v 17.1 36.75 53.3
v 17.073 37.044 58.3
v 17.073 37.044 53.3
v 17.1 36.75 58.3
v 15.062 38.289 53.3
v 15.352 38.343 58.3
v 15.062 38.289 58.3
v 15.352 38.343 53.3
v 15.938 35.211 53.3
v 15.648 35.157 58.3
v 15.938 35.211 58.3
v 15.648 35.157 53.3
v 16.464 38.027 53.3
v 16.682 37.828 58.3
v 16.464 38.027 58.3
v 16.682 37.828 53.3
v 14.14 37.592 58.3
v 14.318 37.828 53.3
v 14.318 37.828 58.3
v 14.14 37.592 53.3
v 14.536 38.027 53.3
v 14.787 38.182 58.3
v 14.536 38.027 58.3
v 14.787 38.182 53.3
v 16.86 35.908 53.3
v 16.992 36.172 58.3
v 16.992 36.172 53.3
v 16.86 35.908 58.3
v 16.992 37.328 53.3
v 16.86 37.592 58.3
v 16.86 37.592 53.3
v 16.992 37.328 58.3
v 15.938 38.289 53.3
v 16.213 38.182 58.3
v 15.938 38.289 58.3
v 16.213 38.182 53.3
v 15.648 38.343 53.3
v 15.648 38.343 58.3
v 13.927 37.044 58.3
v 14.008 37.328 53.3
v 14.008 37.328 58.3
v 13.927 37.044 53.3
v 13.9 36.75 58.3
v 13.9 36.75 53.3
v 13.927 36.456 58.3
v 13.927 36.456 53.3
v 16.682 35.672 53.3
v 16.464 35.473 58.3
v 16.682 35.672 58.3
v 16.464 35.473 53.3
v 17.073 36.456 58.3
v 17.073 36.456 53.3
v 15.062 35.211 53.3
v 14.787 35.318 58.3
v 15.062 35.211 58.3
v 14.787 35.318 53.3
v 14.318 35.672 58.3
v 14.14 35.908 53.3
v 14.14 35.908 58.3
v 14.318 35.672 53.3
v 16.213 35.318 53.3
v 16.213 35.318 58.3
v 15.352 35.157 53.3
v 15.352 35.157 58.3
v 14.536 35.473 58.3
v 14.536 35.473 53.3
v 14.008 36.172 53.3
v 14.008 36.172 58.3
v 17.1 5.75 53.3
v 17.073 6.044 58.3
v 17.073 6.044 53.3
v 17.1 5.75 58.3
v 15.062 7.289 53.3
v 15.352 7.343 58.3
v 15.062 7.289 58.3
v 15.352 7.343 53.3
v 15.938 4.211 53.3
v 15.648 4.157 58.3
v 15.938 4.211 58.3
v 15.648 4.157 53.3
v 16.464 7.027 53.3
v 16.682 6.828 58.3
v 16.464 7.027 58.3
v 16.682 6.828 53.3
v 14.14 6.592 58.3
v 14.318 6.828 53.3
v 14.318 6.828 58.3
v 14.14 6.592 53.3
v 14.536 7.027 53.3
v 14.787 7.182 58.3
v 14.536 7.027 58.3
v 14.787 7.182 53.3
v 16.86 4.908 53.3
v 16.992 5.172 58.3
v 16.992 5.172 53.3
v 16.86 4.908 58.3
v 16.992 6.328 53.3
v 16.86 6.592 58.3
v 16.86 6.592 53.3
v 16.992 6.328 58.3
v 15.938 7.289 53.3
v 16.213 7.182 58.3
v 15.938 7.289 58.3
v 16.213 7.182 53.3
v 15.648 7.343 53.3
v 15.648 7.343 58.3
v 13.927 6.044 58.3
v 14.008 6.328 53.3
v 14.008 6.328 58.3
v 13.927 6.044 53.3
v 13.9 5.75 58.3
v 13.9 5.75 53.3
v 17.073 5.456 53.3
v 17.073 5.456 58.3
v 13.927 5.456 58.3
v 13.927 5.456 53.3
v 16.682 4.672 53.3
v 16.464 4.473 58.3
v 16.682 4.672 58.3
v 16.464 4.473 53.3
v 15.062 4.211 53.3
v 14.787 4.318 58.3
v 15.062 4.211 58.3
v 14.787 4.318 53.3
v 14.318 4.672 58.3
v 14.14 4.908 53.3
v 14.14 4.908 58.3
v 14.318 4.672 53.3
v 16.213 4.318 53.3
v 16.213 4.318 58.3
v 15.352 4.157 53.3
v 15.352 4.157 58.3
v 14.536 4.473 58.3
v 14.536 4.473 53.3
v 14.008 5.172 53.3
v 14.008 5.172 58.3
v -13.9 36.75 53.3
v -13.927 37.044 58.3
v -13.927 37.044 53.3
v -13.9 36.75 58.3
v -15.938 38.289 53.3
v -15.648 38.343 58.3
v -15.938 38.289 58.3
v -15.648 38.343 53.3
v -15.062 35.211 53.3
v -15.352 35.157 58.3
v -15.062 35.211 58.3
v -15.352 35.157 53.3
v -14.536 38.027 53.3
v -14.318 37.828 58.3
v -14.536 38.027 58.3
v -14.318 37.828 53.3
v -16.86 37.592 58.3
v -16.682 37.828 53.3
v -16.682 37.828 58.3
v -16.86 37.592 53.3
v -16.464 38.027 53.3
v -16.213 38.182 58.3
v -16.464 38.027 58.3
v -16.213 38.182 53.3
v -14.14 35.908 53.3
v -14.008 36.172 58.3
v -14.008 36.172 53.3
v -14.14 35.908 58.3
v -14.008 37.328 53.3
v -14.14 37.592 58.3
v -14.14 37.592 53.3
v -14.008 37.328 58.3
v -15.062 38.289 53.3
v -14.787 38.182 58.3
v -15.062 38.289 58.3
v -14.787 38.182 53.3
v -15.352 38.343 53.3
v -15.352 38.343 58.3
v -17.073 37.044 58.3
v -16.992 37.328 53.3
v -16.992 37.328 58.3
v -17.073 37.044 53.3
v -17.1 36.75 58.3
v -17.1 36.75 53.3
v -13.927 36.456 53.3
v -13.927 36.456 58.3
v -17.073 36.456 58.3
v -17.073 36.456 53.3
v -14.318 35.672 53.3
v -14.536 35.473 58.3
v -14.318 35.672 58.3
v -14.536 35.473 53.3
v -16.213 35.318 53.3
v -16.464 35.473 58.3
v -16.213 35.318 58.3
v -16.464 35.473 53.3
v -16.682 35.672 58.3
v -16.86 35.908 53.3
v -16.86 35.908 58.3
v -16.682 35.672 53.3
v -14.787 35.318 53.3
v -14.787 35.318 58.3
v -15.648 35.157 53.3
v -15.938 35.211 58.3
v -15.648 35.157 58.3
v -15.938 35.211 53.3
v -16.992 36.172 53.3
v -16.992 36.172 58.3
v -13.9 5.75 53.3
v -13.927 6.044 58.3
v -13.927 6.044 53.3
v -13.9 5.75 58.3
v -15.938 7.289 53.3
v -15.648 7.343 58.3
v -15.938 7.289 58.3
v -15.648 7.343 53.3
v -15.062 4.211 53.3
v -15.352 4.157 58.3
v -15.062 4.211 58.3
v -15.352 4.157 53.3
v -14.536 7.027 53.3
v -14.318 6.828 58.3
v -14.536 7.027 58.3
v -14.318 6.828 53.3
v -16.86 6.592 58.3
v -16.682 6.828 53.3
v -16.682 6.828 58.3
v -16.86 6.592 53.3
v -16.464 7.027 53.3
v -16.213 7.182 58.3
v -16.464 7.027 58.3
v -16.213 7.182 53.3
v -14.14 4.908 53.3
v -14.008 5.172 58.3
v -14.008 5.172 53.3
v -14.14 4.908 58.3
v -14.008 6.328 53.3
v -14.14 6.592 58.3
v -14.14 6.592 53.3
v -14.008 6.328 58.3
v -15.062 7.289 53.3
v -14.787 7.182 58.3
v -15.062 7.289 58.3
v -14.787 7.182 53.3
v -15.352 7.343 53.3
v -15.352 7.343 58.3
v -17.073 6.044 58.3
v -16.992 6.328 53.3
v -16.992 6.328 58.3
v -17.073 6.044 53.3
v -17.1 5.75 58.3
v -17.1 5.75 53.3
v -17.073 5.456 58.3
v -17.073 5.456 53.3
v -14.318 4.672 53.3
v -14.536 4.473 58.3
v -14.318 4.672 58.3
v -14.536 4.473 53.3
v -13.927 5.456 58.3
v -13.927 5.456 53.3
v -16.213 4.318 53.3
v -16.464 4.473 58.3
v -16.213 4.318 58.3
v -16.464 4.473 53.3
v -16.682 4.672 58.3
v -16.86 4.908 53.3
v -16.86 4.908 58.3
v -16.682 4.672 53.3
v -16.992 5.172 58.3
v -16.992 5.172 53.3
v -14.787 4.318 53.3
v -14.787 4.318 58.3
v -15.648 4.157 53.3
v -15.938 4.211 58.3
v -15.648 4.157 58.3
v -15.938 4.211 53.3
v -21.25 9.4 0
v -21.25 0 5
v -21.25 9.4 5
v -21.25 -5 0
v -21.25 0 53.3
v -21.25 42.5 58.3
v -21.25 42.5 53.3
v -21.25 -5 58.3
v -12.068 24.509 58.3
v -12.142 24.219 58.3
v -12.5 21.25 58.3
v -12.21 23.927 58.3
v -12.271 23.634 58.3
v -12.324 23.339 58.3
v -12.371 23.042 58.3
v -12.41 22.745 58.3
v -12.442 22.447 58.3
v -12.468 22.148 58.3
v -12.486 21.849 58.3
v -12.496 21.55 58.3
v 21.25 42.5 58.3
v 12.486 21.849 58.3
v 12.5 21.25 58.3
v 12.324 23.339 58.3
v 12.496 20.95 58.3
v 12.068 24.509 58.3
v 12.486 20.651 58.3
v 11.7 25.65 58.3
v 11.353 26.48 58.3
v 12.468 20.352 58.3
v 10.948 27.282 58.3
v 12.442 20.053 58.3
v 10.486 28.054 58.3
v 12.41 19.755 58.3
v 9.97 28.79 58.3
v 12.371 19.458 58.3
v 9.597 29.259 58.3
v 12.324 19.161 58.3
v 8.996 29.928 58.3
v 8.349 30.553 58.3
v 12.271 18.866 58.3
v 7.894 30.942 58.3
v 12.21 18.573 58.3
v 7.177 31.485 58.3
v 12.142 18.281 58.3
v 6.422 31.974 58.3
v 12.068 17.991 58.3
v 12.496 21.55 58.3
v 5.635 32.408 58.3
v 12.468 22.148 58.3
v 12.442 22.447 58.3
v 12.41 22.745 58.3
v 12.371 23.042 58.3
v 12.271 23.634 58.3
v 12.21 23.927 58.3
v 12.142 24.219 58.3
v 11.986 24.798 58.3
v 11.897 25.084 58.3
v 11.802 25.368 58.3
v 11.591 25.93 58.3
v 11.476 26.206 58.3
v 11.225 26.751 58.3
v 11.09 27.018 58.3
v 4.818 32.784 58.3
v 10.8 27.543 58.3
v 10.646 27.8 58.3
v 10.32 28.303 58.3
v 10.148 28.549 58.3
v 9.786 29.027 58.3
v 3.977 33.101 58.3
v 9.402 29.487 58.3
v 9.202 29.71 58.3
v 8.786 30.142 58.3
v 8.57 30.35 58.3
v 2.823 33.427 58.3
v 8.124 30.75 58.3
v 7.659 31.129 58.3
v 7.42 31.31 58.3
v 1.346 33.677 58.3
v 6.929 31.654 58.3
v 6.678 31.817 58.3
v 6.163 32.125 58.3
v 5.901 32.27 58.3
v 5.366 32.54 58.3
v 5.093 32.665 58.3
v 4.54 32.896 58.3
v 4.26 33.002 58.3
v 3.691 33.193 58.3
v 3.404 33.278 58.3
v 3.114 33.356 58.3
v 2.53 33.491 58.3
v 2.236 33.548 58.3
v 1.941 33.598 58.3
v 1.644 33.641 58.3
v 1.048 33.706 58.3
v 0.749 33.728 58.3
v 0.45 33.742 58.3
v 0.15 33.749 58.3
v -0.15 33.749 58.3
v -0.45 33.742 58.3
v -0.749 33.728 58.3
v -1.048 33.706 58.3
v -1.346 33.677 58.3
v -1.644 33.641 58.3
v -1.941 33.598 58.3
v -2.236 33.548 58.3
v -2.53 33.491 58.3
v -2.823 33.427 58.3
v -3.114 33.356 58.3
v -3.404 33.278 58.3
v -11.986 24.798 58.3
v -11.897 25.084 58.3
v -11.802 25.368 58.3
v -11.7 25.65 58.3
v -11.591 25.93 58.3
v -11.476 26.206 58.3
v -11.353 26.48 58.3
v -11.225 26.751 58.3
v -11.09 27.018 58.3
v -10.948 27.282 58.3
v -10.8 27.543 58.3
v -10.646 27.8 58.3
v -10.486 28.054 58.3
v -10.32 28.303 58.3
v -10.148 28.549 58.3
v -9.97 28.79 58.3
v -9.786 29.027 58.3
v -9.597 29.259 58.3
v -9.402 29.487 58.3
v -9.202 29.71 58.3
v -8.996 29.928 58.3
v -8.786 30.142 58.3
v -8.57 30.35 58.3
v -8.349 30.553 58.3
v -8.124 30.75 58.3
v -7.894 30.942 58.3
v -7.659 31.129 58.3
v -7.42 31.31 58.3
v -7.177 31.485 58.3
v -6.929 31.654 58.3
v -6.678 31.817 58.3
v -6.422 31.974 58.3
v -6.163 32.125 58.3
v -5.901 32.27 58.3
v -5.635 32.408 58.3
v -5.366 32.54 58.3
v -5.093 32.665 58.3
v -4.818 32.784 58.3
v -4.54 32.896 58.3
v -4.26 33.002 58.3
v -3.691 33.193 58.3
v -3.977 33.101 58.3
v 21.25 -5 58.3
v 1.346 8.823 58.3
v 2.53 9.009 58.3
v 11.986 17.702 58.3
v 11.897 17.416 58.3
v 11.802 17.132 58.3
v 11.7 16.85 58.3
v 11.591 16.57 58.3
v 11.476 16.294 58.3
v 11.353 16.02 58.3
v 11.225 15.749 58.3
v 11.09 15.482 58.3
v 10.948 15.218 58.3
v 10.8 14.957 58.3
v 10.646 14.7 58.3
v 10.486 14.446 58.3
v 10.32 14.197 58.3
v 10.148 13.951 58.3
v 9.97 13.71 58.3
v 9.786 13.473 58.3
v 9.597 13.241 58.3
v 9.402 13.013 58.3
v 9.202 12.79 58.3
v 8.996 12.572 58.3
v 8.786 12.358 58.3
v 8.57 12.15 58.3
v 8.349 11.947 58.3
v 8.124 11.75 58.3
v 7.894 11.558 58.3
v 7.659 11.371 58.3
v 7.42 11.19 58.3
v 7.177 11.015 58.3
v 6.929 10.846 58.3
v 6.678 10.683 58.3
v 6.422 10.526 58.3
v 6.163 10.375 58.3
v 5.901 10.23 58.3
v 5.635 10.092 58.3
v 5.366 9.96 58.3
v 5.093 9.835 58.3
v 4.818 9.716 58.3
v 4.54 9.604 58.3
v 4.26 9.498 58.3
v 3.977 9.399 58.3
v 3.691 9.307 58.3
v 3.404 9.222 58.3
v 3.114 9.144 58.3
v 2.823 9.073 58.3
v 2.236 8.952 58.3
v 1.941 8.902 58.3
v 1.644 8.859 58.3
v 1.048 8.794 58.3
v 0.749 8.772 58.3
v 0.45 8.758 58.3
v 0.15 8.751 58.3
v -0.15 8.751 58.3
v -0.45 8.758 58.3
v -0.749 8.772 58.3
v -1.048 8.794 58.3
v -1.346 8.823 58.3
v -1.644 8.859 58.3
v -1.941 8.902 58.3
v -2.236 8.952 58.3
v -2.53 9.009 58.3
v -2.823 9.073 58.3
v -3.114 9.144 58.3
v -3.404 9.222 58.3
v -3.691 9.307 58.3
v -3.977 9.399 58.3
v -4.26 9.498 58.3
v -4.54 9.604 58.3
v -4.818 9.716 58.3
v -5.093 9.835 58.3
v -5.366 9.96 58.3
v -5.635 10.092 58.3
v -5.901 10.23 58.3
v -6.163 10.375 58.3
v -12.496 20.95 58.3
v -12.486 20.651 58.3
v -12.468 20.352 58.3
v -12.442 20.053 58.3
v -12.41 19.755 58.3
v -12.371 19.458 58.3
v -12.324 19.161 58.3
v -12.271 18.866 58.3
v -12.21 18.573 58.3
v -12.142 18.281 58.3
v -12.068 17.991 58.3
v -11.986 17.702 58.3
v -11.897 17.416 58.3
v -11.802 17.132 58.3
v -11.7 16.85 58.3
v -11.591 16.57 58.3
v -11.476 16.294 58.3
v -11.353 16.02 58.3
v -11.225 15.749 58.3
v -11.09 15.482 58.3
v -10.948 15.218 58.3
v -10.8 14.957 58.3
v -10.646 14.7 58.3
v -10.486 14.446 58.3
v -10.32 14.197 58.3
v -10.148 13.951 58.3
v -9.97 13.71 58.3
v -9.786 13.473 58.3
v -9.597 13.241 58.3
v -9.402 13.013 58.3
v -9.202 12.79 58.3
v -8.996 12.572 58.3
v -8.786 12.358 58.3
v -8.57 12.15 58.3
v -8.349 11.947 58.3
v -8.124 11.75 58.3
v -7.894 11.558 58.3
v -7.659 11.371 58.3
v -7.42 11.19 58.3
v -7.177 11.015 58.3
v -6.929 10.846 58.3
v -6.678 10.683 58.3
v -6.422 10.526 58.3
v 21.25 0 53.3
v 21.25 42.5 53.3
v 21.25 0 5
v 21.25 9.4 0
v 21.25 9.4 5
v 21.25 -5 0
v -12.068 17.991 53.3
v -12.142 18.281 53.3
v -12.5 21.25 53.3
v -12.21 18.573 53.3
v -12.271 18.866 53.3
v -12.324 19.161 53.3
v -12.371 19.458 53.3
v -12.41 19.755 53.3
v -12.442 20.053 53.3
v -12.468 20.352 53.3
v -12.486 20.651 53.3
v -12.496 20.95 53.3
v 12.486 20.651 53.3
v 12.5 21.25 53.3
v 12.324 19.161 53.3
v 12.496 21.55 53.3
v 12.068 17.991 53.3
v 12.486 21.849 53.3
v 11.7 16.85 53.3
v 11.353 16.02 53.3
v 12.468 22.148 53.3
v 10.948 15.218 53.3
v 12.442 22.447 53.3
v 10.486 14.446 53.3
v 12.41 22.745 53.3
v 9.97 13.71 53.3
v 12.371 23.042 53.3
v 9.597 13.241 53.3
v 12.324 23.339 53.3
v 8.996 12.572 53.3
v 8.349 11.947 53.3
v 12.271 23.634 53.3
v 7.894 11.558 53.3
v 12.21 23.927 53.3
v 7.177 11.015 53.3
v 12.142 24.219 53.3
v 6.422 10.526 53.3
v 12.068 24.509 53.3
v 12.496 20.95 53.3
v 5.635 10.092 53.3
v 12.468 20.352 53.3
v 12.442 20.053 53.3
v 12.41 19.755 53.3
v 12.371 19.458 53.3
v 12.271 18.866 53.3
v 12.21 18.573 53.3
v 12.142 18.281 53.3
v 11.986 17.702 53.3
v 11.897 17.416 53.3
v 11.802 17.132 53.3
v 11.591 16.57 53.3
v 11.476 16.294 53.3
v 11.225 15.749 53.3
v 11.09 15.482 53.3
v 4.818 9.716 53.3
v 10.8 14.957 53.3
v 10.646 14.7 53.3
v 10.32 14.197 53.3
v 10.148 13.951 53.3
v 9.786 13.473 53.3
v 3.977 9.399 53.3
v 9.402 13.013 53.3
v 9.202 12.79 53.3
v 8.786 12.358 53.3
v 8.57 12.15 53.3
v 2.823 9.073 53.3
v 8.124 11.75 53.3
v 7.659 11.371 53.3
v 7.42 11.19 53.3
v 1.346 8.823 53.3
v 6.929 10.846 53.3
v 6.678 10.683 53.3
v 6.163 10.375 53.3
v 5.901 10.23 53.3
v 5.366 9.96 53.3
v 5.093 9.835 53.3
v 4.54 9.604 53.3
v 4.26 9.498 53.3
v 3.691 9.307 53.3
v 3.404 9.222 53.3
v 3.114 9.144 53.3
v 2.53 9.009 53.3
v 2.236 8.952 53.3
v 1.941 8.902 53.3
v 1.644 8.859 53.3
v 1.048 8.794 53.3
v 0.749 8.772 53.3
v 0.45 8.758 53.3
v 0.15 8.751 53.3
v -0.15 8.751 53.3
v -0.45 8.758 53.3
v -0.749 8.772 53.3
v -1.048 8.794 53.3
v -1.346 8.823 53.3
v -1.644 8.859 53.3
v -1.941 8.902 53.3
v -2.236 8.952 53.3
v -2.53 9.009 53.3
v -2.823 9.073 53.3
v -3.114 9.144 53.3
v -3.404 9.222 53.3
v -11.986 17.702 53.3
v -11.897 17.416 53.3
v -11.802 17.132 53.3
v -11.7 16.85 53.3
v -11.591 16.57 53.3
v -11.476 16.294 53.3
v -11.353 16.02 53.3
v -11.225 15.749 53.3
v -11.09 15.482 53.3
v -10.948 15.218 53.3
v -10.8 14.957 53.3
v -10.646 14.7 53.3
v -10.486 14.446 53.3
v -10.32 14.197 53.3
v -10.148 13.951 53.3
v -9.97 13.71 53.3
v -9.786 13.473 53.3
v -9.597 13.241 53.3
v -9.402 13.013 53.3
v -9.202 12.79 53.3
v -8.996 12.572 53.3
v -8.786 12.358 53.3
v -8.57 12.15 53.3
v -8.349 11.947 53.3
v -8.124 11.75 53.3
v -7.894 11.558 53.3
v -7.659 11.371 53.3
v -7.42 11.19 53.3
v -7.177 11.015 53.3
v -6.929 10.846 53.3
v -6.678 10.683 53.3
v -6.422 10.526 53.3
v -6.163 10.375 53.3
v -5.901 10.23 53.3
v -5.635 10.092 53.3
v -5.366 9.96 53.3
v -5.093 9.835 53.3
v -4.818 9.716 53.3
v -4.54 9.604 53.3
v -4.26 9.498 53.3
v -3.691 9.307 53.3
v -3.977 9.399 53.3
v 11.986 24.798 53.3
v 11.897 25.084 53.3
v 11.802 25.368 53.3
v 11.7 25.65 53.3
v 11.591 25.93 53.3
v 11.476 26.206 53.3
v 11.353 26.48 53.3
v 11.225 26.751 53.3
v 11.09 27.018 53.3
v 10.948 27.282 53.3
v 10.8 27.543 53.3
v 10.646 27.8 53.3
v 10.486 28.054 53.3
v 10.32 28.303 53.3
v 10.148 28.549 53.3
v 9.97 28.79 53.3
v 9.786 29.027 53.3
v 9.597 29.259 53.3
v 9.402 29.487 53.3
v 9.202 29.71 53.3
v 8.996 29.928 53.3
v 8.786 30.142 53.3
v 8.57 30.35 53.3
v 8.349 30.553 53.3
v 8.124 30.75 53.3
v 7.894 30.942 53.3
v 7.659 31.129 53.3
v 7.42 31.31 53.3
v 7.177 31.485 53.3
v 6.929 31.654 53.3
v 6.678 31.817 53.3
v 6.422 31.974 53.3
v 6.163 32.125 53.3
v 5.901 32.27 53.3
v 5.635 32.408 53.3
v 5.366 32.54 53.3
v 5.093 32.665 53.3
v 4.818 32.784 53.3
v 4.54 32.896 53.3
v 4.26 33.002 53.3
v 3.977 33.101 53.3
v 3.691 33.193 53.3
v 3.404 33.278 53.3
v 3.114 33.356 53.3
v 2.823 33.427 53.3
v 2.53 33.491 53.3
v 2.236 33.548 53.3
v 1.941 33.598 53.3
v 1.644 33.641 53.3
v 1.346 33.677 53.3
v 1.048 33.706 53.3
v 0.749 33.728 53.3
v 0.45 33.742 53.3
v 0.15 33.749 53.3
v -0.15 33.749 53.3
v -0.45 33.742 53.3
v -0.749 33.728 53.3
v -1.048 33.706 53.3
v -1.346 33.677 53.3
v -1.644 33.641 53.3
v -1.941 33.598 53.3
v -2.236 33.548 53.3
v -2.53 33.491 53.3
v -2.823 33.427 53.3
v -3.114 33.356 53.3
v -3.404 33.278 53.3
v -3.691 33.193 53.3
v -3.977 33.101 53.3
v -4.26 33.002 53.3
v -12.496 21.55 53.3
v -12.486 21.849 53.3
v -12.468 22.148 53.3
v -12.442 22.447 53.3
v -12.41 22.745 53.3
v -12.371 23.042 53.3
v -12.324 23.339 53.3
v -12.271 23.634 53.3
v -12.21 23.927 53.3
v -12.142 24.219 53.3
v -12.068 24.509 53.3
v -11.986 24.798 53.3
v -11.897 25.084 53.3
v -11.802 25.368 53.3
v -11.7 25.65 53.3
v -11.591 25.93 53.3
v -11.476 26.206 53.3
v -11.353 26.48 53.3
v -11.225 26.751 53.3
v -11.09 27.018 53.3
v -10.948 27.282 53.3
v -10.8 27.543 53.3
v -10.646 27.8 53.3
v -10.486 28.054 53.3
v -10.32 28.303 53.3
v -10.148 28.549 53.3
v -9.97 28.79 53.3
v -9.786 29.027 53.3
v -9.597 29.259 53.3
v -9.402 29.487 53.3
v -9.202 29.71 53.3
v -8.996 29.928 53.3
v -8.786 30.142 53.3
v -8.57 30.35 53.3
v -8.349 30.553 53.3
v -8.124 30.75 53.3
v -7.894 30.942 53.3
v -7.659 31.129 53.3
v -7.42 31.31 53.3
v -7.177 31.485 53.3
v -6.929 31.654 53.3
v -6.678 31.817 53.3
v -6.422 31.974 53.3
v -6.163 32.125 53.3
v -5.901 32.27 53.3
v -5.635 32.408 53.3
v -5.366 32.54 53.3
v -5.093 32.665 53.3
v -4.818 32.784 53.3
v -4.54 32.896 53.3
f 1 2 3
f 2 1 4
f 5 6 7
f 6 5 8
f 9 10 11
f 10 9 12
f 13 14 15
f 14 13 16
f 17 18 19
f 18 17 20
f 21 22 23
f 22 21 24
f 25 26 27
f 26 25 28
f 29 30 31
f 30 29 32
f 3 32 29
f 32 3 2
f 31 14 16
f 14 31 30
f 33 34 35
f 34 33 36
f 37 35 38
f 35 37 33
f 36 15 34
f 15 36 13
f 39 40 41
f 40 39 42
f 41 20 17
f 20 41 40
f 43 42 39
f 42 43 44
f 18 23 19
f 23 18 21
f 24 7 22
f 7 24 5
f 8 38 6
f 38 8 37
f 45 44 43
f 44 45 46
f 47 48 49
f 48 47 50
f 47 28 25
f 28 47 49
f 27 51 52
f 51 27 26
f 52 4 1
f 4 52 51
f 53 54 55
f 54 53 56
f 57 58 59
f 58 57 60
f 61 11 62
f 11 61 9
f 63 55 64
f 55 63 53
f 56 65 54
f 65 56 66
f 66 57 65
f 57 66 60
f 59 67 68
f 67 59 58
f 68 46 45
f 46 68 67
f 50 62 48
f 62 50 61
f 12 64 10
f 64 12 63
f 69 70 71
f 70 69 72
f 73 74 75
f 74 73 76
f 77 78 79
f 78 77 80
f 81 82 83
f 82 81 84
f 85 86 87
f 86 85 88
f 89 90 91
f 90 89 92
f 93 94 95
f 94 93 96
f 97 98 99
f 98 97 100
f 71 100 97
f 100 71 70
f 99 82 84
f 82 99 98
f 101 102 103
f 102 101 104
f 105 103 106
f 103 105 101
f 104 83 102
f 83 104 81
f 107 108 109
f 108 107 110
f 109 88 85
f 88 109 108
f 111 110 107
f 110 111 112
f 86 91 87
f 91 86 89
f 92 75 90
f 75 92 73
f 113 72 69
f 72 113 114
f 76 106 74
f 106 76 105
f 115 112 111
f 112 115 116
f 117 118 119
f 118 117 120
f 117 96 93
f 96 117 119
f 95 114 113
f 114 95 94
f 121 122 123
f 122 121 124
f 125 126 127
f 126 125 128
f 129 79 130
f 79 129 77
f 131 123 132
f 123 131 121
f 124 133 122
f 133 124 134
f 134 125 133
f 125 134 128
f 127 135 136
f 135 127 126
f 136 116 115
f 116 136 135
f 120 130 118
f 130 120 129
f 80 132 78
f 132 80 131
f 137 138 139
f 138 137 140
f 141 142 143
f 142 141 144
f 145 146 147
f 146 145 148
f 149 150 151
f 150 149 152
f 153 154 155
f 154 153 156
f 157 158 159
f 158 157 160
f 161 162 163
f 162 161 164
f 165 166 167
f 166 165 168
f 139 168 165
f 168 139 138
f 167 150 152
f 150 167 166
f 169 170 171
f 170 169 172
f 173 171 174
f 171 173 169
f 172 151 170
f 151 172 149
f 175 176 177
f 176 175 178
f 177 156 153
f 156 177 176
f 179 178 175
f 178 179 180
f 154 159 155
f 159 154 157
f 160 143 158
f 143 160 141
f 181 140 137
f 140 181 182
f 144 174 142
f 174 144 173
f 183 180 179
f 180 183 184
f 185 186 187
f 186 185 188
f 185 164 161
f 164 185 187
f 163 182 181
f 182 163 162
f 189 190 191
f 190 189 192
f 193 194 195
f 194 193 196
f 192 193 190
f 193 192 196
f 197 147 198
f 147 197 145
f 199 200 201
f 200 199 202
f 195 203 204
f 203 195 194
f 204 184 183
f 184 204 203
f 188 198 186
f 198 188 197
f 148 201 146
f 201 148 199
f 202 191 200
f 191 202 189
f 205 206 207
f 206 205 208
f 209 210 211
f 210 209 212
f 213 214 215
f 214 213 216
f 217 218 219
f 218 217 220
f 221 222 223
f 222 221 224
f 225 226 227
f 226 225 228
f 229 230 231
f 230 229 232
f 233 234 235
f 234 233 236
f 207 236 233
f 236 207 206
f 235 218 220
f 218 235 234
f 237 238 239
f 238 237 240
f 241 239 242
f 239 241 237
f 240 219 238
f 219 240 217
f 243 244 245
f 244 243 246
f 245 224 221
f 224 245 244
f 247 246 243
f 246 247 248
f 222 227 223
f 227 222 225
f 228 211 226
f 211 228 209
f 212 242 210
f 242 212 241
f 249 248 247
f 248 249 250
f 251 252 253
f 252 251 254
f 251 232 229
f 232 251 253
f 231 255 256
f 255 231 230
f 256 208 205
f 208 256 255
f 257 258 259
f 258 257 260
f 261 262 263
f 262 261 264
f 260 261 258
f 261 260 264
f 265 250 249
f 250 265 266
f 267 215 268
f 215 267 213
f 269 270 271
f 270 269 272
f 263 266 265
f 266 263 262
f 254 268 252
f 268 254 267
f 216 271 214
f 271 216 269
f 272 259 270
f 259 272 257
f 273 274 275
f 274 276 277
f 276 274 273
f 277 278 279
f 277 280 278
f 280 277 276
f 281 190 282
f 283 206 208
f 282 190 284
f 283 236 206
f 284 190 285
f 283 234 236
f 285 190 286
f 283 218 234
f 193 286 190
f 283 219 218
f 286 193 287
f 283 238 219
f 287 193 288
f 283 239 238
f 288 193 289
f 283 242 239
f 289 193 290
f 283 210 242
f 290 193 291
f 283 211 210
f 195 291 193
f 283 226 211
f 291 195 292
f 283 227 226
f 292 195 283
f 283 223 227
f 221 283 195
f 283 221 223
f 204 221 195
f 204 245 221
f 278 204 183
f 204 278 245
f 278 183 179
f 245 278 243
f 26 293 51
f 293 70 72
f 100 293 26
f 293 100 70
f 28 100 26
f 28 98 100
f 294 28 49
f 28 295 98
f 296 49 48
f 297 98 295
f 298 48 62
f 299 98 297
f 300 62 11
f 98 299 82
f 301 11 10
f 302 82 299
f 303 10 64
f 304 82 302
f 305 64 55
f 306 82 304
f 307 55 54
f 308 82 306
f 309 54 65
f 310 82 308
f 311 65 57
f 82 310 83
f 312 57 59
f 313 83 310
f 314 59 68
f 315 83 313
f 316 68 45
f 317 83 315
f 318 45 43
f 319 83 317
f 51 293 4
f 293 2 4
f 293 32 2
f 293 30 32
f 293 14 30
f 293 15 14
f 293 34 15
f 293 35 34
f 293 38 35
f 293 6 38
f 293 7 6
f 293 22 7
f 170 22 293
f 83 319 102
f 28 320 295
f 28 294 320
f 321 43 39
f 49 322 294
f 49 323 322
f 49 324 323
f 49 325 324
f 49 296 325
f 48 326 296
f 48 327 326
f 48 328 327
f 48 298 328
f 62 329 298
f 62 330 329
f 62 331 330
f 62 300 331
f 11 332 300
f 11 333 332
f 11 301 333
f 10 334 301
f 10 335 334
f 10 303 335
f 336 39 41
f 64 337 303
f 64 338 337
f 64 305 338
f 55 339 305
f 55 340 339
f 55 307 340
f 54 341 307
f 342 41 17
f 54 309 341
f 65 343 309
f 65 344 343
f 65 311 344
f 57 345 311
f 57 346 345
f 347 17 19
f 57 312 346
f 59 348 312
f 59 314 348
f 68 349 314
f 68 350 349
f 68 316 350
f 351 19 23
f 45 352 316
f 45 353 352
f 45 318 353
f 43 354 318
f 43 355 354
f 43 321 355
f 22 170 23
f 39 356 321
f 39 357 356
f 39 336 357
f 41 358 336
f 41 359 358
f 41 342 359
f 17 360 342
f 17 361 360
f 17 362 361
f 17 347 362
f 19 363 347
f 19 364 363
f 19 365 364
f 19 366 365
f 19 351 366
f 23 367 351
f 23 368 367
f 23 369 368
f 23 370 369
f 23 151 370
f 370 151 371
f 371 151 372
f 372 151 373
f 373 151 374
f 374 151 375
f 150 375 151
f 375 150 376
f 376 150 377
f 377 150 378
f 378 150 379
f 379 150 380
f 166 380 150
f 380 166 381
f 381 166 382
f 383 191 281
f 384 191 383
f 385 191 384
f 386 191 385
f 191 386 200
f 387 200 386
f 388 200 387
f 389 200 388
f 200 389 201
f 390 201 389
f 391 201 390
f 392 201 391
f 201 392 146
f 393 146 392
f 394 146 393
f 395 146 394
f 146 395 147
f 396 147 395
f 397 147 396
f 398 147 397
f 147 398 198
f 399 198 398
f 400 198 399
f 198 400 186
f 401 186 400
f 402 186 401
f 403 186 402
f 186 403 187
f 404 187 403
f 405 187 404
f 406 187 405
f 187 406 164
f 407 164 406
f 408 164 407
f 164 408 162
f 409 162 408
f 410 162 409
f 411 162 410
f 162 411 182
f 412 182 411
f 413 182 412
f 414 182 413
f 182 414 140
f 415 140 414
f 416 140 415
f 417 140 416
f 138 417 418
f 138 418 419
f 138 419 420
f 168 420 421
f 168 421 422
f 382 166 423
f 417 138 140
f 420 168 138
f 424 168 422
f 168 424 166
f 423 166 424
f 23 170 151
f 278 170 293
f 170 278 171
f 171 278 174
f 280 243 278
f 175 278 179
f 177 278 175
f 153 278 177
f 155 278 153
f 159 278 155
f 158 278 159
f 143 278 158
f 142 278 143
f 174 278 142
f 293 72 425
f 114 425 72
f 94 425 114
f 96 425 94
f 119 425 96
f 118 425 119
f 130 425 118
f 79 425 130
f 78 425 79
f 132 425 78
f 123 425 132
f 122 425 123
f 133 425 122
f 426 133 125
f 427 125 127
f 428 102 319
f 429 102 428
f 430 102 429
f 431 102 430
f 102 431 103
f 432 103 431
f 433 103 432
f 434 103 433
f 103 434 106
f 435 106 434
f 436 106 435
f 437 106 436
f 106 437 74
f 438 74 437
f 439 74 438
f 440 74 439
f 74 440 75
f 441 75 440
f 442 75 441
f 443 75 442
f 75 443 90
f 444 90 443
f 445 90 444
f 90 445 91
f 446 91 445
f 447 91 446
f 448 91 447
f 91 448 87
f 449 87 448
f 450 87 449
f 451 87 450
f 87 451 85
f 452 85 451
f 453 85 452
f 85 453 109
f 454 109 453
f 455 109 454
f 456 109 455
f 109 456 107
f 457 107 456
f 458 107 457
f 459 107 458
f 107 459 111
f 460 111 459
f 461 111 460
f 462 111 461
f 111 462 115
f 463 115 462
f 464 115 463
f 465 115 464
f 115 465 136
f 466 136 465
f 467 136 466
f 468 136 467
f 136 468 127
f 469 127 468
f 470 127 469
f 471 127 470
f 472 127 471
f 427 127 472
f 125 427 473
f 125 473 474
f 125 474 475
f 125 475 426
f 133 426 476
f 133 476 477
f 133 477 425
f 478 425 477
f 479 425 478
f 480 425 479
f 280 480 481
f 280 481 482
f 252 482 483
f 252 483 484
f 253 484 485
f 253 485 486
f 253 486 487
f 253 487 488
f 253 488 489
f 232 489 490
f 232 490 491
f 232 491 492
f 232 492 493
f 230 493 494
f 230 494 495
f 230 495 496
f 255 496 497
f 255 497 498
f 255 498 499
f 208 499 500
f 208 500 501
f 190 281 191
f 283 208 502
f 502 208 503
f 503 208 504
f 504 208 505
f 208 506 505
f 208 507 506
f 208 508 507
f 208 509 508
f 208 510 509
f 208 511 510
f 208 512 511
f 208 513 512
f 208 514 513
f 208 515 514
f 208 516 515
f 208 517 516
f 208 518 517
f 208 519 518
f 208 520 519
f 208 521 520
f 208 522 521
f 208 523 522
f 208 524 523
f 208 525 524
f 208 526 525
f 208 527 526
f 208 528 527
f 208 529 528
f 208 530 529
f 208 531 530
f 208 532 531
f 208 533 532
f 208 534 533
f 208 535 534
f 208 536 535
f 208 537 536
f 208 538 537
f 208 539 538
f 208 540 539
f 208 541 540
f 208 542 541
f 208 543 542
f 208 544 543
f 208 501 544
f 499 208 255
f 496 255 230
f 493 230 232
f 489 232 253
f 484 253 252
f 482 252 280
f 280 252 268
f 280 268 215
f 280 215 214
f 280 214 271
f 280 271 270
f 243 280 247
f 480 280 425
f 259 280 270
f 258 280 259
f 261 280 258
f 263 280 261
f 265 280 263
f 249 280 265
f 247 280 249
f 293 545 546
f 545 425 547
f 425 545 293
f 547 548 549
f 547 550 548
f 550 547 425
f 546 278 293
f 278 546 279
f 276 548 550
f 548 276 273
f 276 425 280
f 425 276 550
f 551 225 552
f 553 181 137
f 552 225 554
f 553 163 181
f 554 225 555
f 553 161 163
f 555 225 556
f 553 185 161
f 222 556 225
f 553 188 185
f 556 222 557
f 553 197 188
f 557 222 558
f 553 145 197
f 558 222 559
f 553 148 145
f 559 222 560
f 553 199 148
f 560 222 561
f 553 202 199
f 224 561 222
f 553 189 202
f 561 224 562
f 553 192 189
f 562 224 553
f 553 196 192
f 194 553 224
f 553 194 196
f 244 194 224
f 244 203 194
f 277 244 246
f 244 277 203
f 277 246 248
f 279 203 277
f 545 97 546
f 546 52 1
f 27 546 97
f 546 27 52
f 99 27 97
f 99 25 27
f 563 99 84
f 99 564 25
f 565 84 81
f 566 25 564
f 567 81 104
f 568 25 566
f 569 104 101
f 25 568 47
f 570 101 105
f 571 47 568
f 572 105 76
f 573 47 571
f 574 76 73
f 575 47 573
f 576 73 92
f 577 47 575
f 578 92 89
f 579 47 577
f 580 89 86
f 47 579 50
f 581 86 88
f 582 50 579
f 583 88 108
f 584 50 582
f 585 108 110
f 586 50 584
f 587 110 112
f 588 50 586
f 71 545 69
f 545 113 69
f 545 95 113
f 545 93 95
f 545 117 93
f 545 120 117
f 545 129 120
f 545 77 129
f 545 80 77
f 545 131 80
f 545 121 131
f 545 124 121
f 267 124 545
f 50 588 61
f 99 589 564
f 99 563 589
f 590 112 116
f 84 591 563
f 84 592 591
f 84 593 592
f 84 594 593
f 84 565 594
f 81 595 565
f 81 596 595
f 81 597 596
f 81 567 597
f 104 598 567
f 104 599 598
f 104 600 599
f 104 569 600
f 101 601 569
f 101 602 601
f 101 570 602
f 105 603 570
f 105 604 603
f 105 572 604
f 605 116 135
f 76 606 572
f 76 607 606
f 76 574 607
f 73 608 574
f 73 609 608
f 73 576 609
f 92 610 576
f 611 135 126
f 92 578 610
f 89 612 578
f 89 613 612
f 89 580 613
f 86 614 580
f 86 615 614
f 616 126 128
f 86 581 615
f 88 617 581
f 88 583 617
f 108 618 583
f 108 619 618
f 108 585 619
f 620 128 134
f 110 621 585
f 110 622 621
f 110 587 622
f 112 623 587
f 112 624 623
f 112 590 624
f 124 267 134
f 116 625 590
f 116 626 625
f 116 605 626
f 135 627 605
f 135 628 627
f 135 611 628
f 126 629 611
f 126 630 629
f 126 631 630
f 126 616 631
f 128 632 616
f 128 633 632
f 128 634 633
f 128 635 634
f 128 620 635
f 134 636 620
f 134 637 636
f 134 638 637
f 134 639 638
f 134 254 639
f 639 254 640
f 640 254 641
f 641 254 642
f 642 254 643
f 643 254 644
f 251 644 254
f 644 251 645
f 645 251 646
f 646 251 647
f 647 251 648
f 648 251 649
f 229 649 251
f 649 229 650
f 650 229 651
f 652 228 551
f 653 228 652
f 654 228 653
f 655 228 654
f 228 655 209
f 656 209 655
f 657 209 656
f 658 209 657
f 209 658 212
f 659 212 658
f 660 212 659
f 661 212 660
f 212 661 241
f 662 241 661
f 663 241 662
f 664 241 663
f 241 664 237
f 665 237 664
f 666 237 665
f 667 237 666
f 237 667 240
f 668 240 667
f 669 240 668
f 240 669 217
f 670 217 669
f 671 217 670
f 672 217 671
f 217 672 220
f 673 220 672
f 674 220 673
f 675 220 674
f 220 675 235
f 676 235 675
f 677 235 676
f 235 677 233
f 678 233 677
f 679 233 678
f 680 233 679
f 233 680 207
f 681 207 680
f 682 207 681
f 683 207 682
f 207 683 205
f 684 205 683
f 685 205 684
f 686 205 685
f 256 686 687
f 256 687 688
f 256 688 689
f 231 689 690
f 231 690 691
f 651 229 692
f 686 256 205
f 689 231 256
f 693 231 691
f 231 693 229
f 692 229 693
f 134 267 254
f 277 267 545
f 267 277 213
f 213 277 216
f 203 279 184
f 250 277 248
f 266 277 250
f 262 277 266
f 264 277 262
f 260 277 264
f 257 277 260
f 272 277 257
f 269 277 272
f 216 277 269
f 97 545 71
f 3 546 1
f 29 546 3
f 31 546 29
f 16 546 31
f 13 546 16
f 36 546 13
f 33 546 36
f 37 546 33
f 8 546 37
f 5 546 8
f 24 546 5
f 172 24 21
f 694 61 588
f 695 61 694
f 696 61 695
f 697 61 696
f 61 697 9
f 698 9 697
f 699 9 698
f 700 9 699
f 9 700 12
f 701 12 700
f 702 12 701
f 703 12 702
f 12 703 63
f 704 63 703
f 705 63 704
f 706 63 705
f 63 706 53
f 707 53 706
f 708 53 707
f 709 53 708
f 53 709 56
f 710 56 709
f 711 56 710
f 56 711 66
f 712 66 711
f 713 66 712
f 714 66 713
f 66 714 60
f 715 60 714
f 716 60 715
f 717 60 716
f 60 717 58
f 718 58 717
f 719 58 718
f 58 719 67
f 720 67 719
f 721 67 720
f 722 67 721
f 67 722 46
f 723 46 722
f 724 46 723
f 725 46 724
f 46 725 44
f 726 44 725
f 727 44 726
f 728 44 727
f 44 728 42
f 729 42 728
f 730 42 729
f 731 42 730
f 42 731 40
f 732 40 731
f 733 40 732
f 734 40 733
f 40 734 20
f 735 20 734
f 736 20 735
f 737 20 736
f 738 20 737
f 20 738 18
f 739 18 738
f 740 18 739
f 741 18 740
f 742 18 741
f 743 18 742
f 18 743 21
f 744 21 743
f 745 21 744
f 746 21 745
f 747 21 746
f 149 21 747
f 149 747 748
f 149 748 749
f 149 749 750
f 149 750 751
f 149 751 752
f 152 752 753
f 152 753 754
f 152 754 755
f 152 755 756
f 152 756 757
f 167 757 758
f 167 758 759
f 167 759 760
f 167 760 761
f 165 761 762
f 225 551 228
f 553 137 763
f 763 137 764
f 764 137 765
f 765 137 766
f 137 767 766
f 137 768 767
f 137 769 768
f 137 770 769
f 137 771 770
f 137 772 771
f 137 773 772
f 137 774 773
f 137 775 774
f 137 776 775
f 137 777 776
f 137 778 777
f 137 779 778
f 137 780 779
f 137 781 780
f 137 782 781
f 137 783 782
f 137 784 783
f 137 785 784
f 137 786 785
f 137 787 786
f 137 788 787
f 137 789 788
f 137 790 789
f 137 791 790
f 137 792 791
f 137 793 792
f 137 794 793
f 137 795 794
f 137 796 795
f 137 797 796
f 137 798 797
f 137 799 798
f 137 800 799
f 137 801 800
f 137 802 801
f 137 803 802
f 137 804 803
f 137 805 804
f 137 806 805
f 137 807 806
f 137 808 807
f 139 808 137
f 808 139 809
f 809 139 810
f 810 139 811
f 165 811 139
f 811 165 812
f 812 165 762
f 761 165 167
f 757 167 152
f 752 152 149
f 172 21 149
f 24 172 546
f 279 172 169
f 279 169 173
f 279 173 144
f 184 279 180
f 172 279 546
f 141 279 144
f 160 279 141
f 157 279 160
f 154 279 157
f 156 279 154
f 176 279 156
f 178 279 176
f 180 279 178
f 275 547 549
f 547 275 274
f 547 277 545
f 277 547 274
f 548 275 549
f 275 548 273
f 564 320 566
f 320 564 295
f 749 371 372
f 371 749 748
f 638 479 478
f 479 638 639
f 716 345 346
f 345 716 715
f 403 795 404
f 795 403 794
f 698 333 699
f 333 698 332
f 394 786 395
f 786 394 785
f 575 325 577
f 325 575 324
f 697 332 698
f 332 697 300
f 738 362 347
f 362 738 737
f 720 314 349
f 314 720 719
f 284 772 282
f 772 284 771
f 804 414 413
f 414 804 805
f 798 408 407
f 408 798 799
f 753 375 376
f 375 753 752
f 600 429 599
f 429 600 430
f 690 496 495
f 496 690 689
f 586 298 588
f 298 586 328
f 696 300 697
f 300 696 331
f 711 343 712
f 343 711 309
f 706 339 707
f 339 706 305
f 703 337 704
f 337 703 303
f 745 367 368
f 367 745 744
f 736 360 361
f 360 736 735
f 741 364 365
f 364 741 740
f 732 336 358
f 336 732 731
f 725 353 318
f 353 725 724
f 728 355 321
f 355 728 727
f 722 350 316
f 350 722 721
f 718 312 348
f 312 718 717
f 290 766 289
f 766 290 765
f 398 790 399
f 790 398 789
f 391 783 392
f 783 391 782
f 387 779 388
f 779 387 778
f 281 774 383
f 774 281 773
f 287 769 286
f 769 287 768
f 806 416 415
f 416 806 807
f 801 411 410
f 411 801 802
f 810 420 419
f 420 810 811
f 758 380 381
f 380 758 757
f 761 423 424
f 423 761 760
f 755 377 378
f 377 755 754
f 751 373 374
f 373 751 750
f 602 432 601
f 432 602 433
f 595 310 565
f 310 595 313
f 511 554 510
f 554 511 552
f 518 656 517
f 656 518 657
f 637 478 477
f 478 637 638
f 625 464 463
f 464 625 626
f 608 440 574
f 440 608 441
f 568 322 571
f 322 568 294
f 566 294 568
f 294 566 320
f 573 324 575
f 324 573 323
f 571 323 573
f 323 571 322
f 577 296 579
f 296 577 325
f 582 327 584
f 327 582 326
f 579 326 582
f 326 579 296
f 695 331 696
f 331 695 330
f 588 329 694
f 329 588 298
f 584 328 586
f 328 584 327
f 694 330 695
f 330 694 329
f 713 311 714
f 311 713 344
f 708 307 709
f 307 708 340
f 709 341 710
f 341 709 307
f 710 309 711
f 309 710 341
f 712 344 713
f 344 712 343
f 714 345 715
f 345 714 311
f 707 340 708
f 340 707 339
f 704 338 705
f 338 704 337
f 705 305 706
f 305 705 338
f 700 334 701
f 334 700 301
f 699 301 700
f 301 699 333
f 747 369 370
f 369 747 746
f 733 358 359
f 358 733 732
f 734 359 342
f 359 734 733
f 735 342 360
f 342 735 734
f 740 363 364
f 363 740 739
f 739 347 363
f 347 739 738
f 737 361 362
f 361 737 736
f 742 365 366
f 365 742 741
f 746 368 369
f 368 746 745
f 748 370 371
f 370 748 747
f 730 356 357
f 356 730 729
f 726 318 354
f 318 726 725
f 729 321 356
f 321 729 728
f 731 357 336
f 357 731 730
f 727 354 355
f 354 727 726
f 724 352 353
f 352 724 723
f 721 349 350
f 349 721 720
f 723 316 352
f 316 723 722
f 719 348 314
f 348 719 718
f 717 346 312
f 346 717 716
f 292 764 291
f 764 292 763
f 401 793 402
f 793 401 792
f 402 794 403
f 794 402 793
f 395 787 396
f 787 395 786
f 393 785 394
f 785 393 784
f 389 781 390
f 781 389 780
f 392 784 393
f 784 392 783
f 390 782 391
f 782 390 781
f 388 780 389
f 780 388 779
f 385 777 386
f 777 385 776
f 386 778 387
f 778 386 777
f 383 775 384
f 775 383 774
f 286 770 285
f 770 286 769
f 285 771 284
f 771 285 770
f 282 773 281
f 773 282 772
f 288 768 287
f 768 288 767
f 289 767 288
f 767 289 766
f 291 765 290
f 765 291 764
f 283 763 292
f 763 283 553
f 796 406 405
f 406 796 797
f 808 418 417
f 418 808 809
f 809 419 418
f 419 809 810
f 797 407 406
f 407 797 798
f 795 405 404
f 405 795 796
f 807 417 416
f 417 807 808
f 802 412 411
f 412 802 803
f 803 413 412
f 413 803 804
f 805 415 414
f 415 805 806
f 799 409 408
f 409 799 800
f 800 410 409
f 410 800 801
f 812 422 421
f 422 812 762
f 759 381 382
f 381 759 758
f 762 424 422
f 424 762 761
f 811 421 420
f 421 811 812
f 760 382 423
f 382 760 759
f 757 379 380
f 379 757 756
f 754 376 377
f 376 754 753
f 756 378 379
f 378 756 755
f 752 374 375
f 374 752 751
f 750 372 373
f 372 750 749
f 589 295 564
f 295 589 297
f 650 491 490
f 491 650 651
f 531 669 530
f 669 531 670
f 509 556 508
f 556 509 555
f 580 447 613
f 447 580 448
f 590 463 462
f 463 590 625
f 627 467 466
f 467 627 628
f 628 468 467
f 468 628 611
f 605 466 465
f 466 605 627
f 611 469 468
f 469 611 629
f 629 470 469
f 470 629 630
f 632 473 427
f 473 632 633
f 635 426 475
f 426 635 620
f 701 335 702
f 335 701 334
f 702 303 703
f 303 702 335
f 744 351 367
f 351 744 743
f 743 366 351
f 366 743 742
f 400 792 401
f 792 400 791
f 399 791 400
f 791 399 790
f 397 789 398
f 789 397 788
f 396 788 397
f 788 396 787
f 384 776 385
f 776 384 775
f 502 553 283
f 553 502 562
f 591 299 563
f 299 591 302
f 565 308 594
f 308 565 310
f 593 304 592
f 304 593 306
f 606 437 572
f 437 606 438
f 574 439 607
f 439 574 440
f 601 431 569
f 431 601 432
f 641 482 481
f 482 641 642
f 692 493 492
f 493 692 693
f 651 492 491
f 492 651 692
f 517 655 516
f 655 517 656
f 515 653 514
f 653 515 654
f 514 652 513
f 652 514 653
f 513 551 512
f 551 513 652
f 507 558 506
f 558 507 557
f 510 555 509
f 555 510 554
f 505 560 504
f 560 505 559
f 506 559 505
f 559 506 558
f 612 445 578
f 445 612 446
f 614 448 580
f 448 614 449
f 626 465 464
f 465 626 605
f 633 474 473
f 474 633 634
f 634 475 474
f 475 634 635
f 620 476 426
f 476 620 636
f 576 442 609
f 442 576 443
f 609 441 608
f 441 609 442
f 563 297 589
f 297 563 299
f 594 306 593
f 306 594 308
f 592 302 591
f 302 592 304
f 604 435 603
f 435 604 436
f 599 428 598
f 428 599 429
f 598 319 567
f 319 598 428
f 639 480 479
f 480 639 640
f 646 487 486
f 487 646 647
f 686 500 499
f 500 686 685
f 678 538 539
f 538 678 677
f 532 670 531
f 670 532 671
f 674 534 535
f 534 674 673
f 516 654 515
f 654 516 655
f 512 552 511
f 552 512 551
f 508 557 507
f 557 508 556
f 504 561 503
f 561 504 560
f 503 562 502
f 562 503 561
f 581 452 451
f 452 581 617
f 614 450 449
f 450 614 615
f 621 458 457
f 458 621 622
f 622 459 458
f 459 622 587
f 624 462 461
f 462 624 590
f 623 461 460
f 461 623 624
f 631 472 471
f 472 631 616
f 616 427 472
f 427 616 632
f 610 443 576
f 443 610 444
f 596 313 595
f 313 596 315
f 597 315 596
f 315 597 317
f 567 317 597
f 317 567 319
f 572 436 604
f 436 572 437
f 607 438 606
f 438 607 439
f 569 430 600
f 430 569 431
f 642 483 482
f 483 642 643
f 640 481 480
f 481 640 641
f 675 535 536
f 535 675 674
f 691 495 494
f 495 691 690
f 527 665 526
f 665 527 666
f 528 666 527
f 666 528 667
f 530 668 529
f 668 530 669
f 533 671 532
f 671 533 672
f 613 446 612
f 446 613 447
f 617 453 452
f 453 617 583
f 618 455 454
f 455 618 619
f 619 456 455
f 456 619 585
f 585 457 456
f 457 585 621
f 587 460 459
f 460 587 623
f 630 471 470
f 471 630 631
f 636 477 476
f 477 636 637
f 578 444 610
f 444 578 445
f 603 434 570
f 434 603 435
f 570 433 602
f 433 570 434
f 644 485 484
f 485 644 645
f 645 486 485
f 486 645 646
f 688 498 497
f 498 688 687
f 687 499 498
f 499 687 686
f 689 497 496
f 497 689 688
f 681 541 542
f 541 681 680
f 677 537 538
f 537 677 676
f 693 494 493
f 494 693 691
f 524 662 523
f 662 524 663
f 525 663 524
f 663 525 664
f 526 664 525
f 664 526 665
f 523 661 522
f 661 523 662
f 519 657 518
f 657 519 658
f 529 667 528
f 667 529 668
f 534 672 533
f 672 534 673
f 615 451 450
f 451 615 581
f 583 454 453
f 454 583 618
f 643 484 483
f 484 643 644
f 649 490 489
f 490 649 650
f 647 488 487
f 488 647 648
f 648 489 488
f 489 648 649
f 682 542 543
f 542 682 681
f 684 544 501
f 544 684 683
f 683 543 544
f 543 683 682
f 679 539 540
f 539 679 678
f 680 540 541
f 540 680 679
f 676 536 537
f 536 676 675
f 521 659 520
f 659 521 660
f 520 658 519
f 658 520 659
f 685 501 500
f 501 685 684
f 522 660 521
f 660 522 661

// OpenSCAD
// Handle Motor Mount for NEMA17 motor onto edge of safe

motorThickness = 33;
safeThickness = 15;
safeDepth = 9.4;

motorW = 42 + 0.5;

motorHoleSpace = 31;
motorHoleD = 3.2; // screw holes

motorBigHoleD = 25;

totalT = motorThickness + safeThickness + 0.3; // gap between bottom of safe panel and top of motor

t = 5;

$fa = 0.3;
$fs = 0.3;

MakeHandleMotorMount();

module MakeHandleMotorMount() {
    difference() {
        translate([-motorW/2, -t, 0]) cube([motorW, t+motorW, t*2 + totalT]);
        
        // Remove space for motor
        translate([-500, 0, t]) cube([1000, 1000, totalT]);
        
        // Remove the safe door part
        translate([-500, safeDepth, -1]) cube([1000, 1000, 20]);
        
        // Remove motor screw holes
        for (x=[1, -1]) for (y=[1, -1]) translate([motorHoleSpace*x/2, motorW/2 + motorHoleSpace*y/2, 30]) {
            cylinder(d=motorHoleD, h=1000);
        }
        
        // Remove big middle hole
        translate([0, motorW/2, 20]) cylinder(d=motorBigHoleD, h=100);
        
        
    }
}
